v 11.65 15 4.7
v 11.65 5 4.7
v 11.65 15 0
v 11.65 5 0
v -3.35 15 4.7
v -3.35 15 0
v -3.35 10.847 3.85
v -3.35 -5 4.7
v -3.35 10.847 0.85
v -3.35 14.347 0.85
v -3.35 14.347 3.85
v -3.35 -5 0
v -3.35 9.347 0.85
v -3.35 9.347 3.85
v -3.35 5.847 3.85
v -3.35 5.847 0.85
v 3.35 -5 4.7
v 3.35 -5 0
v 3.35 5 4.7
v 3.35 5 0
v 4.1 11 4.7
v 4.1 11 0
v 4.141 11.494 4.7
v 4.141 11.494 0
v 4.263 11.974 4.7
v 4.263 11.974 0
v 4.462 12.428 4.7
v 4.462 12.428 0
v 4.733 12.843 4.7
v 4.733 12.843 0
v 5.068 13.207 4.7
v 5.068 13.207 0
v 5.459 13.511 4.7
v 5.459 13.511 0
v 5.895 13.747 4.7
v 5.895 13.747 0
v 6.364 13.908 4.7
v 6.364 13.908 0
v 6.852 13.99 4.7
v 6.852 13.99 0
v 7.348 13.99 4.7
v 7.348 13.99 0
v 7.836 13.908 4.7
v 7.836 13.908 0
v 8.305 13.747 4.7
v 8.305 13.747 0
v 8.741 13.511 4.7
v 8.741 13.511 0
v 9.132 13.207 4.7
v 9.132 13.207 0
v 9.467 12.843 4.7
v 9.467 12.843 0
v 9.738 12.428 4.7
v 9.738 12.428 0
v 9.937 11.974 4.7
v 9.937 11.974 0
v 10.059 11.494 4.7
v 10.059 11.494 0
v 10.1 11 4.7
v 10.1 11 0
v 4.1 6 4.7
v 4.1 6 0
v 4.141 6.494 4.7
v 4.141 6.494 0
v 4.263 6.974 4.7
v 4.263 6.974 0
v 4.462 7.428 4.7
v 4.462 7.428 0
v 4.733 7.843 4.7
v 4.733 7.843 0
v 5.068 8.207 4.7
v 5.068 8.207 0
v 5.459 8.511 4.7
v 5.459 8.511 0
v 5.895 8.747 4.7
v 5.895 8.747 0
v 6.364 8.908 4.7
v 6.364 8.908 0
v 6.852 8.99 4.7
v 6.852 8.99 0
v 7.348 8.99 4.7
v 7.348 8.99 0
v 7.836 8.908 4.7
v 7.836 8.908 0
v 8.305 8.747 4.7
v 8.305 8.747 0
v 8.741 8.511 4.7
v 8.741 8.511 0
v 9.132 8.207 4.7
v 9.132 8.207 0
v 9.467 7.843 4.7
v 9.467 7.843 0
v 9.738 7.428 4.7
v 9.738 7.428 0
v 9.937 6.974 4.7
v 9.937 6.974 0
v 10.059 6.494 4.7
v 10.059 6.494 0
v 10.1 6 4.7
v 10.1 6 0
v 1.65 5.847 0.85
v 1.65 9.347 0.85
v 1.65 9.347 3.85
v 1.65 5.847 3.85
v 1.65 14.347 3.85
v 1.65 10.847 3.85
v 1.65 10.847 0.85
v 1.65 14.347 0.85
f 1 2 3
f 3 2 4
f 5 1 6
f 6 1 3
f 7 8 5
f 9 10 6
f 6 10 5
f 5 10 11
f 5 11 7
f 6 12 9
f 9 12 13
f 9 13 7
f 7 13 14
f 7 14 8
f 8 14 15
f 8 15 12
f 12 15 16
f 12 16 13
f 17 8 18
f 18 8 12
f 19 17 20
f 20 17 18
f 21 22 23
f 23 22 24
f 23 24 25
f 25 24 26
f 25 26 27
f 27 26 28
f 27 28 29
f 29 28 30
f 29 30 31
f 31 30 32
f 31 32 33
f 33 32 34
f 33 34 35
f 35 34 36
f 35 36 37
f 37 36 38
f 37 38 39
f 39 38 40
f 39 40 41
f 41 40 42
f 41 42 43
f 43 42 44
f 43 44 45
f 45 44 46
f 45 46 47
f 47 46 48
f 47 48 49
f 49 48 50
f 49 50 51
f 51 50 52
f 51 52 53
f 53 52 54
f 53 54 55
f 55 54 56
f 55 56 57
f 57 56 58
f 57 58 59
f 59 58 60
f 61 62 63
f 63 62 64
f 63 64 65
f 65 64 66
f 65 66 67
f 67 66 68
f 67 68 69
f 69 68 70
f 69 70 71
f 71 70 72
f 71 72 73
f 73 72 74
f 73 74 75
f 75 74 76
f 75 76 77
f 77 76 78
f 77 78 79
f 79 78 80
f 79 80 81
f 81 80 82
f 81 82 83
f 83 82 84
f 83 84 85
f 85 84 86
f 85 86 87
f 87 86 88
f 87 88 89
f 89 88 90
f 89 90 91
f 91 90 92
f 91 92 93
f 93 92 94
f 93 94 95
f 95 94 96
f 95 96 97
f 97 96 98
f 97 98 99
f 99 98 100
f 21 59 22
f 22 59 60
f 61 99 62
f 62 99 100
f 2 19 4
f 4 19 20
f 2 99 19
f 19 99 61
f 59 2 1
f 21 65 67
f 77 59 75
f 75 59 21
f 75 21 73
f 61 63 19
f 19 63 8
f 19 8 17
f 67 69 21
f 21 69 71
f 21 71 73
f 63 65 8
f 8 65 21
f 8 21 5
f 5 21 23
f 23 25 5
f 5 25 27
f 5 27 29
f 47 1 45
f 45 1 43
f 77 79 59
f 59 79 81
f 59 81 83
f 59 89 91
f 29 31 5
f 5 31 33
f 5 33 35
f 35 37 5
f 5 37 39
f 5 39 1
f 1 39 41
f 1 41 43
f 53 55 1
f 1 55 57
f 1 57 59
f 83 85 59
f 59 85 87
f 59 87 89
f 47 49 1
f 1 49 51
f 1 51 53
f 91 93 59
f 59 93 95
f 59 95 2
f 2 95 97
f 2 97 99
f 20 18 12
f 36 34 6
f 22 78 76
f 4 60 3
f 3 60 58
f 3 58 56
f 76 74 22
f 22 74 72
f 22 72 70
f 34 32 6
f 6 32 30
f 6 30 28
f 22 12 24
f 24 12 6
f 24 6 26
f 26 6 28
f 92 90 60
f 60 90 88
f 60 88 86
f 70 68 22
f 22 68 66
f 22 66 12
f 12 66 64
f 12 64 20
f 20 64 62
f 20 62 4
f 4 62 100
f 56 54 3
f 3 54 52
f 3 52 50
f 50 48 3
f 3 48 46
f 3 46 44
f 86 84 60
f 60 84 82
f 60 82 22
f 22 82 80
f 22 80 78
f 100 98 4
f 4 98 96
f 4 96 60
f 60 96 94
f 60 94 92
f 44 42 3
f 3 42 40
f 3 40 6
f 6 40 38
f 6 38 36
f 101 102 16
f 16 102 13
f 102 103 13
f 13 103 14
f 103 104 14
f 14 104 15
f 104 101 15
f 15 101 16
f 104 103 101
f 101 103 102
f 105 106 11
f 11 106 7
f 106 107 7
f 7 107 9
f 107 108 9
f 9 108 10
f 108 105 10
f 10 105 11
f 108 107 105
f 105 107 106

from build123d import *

# Parameters (mm, degrees)
BOSS_EXTRUDE2_DEPTH = 4.7
SKETCH4_W           = 3
SKETCH4_H           = 3.5
CUT_EXTRUDE1_DEPTH  = 5


with BuildPart() as part:
    # Sketch3 → Boss-Extrude2 (new body)
    with BuildSketch(Plane.XY):
        Polygon((-3.35, 5), (-3.35, -5), (3.35, -5), (3.35, 5), (6.63, 5), (10.65, 5), (11.65, 5), (11.65, 15), (10.65, 15), (-3.35, 15), align=None)
        with BuildLine():
            Line((10.1, 11), (4.1, 11))
            ThreePointArc((4.1, 11), (7.1, 14), (10.1, 11))
        make_face(mode=Mode.SUBTRACT)
        with BuildLine():
            Line((10.1, 6), (4.1, 6))
            ThreePointArc((4.1, 6), (7.1, 9), (10.1, 6))
        make_face(mode=Mode.SUBTRACT)
    extrude(amount=BOSS_EXTRUDE2_DEPTH)

    # Sketch4 → Cut-Extrude1 (cut)
    with BuildSketch(Plane.ZY.offset(3.35)):
        with Locations((2.35, 7.597247867)):
            Rectangle(SKETCH4_W, SKETCH4_H)
        with Locations((2.35, 12.597247867)):
            Rectangle(SKETCH4_W, SKETCH4_H)
    extrude(amount=-CUT_EXTRUDE1_DEPTH, mode=Mode.SUBTRACT)


solid = part.part
